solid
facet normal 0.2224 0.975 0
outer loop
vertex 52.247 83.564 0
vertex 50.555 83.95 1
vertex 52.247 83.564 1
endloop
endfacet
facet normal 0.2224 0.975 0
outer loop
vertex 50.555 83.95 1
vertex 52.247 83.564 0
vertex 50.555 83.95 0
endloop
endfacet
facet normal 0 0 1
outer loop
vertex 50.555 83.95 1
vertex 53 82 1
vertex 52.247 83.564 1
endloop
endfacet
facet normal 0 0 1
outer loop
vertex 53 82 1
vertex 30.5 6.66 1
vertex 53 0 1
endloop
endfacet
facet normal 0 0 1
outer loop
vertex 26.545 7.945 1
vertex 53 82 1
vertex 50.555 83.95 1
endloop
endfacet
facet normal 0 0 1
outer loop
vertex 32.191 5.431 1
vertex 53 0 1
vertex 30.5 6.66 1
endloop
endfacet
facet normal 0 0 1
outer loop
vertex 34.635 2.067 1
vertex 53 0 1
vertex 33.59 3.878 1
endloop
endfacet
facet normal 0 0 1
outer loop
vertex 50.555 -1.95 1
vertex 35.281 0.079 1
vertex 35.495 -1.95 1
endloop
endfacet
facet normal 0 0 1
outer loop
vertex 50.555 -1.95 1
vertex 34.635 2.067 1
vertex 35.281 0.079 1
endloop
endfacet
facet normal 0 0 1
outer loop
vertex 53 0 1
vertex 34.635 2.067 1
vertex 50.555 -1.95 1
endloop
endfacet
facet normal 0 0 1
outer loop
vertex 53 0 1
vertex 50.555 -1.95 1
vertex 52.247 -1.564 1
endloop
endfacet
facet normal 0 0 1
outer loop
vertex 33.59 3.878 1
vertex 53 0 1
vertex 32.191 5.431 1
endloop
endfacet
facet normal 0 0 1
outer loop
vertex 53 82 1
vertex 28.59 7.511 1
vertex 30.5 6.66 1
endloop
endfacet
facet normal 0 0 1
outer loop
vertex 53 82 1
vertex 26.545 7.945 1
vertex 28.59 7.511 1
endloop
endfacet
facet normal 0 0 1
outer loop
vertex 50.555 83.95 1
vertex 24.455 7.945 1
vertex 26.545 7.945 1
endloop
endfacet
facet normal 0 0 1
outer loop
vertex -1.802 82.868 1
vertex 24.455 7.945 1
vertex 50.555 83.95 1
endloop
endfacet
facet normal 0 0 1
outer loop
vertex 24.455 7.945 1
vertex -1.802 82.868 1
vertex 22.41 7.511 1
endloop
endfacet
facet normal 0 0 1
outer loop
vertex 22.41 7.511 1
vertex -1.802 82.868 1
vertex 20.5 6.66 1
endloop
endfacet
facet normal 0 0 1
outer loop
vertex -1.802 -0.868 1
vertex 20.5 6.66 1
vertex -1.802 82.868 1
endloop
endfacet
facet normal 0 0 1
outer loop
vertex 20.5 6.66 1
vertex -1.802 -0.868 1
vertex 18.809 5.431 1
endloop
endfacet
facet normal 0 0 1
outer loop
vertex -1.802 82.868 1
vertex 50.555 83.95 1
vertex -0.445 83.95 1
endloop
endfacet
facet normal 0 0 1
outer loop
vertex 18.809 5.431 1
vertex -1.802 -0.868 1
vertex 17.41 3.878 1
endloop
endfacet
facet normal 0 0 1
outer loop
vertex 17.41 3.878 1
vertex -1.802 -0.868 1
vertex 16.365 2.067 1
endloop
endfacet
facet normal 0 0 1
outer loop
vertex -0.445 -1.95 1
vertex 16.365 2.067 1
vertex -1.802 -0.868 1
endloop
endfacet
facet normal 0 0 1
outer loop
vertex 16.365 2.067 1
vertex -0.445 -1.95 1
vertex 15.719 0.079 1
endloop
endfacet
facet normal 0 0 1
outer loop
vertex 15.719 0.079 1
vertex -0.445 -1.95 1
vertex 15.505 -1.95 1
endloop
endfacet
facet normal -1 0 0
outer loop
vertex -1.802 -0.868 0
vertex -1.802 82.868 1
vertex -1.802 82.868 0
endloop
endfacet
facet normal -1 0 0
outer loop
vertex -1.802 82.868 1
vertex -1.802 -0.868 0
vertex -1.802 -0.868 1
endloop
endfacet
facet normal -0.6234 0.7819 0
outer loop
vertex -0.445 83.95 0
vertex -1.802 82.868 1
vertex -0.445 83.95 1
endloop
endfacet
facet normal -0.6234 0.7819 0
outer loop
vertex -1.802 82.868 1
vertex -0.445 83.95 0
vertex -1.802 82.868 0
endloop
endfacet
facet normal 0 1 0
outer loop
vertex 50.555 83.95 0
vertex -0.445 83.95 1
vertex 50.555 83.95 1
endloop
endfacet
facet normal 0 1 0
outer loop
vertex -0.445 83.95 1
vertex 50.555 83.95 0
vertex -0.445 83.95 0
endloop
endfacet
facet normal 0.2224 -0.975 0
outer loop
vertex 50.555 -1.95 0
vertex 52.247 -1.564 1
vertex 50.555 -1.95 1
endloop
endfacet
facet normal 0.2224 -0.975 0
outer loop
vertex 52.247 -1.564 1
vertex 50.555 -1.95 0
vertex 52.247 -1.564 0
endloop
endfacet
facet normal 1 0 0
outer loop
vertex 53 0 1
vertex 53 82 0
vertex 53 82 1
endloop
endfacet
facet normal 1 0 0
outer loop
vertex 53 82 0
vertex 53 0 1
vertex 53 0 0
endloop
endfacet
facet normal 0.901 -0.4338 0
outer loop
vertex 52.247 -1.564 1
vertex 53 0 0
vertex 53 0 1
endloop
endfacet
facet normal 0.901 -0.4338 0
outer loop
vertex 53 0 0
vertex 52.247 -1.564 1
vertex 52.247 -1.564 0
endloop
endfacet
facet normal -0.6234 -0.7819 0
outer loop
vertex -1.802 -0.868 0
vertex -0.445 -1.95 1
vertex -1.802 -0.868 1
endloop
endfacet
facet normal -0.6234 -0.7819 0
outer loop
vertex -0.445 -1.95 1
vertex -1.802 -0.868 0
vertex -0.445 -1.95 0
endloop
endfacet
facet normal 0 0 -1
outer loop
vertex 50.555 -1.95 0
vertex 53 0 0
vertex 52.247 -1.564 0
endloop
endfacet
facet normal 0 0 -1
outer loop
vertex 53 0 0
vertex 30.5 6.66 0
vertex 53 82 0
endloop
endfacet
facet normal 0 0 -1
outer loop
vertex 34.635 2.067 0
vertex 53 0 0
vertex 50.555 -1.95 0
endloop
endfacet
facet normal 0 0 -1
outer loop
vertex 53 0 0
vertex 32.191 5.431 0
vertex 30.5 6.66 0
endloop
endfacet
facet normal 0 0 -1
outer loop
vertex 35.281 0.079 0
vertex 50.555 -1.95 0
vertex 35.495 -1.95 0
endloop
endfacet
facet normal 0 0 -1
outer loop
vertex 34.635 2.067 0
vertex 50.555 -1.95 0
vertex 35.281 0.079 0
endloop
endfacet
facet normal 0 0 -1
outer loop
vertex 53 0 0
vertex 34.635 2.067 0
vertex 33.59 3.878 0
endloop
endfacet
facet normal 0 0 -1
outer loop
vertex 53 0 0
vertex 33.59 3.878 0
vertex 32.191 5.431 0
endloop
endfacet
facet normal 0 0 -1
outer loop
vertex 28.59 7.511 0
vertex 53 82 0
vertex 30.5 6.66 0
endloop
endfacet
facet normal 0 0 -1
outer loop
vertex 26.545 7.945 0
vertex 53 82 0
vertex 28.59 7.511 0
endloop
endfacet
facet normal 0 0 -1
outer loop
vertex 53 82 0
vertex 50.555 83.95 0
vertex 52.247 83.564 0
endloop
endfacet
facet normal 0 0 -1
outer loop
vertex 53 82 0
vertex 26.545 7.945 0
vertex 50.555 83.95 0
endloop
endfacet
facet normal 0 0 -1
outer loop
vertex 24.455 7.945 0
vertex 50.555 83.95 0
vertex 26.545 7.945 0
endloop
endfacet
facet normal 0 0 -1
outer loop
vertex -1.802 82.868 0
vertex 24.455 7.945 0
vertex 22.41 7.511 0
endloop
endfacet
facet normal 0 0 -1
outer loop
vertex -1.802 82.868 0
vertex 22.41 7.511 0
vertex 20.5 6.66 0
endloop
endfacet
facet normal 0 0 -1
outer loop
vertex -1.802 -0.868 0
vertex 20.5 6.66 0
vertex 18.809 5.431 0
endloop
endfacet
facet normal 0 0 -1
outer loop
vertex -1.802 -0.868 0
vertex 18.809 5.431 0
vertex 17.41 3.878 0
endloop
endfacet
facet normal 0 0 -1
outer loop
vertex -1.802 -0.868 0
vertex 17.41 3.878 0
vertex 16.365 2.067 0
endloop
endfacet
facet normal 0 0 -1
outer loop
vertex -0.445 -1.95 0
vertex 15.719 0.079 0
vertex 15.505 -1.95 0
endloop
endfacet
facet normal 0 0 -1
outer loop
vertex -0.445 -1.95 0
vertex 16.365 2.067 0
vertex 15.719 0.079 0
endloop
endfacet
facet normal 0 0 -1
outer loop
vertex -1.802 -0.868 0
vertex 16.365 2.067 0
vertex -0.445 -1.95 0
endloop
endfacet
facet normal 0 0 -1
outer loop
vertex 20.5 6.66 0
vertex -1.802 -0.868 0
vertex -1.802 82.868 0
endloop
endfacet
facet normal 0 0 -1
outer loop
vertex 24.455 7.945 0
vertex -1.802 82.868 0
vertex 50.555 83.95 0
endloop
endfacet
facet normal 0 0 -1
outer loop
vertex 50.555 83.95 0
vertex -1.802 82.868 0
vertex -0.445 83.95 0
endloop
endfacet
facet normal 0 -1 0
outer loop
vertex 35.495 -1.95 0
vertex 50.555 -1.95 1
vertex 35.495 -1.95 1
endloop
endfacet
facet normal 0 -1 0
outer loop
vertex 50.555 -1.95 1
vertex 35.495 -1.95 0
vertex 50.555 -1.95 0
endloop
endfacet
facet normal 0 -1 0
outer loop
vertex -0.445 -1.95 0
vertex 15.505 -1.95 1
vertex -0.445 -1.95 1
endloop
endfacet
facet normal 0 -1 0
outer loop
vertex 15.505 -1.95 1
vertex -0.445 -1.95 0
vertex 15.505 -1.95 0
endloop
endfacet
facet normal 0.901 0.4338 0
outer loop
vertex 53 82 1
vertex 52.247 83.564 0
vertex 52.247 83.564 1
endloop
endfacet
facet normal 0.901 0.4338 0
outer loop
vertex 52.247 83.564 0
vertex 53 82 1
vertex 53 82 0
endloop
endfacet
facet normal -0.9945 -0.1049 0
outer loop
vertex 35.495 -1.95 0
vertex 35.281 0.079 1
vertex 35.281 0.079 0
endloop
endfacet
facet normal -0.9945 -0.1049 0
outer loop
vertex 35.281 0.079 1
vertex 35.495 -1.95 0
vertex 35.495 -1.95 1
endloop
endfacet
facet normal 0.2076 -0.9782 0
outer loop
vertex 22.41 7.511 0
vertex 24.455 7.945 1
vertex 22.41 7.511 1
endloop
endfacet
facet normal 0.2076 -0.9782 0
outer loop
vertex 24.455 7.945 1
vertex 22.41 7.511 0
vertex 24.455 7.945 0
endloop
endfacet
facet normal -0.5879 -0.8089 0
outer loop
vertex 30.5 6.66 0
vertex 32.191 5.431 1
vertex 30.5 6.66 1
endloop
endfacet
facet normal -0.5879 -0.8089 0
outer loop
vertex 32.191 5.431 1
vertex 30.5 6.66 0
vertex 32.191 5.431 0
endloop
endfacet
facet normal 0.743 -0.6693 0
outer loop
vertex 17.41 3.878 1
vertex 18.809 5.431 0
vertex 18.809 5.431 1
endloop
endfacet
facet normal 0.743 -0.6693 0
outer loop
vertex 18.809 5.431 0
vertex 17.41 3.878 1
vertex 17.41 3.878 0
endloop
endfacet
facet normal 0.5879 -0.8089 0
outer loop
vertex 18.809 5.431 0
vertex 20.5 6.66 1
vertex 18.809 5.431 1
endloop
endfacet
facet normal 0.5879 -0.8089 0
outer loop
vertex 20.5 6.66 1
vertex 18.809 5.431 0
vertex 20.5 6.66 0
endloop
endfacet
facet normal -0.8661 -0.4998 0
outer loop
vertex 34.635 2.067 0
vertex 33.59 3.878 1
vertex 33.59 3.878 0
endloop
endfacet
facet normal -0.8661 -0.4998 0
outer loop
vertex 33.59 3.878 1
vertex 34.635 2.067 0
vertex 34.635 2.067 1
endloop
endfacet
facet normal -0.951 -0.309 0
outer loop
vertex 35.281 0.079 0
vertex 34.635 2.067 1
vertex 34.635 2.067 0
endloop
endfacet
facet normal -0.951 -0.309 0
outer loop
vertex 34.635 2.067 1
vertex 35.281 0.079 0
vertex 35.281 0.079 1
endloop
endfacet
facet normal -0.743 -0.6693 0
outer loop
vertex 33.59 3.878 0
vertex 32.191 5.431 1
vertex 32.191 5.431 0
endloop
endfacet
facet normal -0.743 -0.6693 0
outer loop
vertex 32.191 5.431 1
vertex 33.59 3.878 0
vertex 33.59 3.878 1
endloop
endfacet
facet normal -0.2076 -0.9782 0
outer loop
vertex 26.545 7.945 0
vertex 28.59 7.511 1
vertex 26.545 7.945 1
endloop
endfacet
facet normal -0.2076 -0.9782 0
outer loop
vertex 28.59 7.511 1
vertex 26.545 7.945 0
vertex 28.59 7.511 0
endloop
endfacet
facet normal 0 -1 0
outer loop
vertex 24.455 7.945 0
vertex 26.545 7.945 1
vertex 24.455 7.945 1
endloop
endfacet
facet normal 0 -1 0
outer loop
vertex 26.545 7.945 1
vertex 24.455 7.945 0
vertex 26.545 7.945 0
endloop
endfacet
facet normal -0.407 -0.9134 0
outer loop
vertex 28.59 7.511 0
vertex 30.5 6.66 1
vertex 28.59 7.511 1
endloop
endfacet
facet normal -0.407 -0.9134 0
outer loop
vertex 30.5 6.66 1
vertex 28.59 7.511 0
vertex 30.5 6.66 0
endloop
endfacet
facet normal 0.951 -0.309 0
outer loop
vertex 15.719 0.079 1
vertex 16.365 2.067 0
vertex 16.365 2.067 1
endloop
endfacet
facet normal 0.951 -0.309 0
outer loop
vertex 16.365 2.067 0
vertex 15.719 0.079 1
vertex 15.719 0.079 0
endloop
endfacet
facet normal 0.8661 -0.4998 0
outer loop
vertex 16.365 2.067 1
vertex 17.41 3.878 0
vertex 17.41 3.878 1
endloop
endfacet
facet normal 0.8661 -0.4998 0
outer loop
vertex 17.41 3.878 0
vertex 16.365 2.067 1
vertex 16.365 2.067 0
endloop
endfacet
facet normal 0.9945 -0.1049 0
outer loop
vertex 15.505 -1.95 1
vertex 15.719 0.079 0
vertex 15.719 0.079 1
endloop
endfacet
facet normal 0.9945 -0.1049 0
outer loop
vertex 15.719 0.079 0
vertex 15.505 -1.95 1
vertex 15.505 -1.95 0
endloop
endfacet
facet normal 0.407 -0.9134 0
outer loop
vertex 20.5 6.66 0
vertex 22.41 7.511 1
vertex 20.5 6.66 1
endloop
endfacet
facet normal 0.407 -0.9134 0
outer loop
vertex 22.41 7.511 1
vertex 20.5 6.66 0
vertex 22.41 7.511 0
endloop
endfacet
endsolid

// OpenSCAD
// 55x86x.8mm
difference() {
    minkowski() {
        cylinder(h=.5, r=2);
        cube([51, 82, .5]);
    }

    translate([25.5, -2, -1]) {
        cylinder(h=2, d=20);
    }
}
